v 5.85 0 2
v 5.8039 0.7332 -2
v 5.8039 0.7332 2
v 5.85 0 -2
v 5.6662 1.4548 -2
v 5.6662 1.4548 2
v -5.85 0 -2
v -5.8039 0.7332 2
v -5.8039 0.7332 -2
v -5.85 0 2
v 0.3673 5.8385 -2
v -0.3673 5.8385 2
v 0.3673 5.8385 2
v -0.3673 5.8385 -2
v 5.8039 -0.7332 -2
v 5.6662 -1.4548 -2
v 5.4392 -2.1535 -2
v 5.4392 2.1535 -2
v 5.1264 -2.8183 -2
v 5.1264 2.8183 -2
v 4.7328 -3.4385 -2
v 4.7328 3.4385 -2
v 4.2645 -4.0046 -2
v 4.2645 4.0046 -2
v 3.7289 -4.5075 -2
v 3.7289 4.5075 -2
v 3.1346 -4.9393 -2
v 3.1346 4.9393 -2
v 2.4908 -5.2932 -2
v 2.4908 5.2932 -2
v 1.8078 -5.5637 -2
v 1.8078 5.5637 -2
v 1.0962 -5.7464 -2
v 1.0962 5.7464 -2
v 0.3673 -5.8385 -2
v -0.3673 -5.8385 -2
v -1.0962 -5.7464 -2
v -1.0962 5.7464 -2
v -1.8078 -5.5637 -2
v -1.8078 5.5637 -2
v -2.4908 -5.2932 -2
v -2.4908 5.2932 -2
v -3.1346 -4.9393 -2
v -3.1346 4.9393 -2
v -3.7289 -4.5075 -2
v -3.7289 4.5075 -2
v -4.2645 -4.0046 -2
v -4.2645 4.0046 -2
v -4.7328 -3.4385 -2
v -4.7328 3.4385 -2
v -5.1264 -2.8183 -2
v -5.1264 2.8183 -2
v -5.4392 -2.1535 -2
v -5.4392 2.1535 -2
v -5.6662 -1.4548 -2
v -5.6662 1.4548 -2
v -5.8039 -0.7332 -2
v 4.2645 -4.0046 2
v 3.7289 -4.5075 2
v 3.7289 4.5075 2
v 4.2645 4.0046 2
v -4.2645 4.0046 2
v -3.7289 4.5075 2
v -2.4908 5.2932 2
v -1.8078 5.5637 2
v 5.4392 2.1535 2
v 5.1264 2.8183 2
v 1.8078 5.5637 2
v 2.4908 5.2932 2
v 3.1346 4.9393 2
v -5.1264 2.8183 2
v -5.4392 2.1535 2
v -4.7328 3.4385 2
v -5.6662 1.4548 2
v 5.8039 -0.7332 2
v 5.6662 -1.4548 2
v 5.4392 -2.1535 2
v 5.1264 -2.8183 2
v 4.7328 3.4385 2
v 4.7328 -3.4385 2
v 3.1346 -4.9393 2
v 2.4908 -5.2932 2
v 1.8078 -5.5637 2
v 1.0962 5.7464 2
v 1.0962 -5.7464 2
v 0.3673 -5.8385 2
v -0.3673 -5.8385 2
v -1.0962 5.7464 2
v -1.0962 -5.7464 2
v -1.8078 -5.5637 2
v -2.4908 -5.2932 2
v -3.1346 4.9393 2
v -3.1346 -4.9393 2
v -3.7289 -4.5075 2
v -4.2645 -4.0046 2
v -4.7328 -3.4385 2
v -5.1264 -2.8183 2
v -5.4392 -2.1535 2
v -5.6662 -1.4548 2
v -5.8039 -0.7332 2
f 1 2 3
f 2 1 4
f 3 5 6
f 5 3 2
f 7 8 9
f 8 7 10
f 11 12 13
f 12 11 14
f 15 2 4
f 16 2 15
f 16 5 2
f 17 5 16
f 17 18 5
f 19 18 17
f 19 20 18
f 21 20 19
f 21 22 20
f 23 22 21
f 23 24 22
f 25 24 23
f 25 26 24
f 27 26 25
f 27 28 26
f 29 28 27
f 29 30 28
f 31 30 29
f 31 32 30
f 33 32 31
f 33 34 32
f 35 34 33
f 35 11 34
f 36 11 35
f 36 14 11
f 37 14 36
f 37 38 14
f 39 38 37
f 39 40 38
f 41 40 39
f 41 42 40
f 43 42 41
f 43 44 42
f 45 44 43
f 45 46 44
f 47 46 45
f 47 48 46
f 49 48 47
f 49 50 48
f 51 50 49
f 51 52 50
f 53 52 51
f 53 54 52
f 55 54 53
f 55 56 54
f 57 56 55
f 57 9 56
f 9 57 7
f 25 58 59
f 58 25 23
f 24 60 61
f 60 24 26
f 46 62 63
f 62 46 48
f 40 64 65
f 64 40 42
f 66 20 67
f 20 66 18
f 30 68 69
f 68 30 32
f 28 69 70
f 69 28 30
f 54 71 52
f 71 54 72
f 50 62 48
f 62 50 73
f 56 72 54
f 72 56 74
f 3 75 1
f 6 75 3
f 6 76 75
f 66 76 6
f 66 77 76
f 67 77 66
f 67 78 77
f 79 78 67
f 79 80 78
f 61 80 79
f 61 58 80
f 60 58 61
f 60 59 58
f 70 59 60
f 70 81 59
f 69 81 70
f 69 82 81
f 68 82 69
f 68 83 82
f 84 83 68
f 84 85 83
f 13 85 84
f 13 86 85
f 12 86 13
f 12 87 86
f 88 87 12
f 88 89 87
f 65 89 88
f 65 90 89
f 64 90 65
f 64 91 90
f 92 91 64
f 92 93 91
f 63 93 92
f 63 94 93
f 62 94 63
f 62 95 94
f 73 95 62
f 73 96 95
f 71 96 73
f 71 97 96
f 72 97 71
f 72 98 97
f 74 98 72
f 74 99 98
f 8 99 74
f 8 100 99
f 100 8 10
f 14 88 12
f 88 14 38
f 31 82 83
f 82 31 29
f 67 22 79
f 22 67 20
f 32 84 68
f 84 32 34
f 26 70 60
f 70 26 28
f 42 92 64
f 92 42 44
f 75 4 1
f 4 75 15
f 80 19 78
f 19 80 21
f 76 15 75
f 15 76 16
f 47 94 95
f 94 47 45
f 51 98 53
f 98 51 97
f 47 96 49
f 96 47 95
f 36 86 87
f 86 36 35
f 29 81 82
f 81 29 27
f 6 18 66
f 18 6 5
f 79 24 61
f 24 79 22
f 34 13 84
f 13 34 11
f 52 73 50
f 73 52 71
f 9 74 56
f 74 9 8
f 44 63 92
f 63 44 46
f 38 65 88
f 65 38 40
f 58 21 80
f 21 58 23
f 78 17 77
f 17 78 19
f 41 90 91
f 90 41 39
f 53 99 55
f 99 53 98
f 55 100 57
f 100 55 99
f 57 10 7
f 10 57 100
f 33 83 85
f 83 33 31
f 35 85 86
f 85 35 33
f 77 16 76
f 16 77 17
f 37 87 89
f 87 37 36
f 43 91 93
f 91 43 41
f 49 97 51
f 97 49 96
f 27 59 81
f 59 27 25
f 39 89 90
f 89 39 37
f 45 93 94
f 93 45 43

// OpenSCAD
$fn = 50;


difference() {
	union() {
		translate(v = [0, 0, -2.0000000000]) {
			cylinder(h = 4, r = 5.8500000000);
		}
	}
	union() {
		translate(v = [0, 0, -100.0000000000]) {
			cylinder(h = 200, r = 0);
		}
	}
}
